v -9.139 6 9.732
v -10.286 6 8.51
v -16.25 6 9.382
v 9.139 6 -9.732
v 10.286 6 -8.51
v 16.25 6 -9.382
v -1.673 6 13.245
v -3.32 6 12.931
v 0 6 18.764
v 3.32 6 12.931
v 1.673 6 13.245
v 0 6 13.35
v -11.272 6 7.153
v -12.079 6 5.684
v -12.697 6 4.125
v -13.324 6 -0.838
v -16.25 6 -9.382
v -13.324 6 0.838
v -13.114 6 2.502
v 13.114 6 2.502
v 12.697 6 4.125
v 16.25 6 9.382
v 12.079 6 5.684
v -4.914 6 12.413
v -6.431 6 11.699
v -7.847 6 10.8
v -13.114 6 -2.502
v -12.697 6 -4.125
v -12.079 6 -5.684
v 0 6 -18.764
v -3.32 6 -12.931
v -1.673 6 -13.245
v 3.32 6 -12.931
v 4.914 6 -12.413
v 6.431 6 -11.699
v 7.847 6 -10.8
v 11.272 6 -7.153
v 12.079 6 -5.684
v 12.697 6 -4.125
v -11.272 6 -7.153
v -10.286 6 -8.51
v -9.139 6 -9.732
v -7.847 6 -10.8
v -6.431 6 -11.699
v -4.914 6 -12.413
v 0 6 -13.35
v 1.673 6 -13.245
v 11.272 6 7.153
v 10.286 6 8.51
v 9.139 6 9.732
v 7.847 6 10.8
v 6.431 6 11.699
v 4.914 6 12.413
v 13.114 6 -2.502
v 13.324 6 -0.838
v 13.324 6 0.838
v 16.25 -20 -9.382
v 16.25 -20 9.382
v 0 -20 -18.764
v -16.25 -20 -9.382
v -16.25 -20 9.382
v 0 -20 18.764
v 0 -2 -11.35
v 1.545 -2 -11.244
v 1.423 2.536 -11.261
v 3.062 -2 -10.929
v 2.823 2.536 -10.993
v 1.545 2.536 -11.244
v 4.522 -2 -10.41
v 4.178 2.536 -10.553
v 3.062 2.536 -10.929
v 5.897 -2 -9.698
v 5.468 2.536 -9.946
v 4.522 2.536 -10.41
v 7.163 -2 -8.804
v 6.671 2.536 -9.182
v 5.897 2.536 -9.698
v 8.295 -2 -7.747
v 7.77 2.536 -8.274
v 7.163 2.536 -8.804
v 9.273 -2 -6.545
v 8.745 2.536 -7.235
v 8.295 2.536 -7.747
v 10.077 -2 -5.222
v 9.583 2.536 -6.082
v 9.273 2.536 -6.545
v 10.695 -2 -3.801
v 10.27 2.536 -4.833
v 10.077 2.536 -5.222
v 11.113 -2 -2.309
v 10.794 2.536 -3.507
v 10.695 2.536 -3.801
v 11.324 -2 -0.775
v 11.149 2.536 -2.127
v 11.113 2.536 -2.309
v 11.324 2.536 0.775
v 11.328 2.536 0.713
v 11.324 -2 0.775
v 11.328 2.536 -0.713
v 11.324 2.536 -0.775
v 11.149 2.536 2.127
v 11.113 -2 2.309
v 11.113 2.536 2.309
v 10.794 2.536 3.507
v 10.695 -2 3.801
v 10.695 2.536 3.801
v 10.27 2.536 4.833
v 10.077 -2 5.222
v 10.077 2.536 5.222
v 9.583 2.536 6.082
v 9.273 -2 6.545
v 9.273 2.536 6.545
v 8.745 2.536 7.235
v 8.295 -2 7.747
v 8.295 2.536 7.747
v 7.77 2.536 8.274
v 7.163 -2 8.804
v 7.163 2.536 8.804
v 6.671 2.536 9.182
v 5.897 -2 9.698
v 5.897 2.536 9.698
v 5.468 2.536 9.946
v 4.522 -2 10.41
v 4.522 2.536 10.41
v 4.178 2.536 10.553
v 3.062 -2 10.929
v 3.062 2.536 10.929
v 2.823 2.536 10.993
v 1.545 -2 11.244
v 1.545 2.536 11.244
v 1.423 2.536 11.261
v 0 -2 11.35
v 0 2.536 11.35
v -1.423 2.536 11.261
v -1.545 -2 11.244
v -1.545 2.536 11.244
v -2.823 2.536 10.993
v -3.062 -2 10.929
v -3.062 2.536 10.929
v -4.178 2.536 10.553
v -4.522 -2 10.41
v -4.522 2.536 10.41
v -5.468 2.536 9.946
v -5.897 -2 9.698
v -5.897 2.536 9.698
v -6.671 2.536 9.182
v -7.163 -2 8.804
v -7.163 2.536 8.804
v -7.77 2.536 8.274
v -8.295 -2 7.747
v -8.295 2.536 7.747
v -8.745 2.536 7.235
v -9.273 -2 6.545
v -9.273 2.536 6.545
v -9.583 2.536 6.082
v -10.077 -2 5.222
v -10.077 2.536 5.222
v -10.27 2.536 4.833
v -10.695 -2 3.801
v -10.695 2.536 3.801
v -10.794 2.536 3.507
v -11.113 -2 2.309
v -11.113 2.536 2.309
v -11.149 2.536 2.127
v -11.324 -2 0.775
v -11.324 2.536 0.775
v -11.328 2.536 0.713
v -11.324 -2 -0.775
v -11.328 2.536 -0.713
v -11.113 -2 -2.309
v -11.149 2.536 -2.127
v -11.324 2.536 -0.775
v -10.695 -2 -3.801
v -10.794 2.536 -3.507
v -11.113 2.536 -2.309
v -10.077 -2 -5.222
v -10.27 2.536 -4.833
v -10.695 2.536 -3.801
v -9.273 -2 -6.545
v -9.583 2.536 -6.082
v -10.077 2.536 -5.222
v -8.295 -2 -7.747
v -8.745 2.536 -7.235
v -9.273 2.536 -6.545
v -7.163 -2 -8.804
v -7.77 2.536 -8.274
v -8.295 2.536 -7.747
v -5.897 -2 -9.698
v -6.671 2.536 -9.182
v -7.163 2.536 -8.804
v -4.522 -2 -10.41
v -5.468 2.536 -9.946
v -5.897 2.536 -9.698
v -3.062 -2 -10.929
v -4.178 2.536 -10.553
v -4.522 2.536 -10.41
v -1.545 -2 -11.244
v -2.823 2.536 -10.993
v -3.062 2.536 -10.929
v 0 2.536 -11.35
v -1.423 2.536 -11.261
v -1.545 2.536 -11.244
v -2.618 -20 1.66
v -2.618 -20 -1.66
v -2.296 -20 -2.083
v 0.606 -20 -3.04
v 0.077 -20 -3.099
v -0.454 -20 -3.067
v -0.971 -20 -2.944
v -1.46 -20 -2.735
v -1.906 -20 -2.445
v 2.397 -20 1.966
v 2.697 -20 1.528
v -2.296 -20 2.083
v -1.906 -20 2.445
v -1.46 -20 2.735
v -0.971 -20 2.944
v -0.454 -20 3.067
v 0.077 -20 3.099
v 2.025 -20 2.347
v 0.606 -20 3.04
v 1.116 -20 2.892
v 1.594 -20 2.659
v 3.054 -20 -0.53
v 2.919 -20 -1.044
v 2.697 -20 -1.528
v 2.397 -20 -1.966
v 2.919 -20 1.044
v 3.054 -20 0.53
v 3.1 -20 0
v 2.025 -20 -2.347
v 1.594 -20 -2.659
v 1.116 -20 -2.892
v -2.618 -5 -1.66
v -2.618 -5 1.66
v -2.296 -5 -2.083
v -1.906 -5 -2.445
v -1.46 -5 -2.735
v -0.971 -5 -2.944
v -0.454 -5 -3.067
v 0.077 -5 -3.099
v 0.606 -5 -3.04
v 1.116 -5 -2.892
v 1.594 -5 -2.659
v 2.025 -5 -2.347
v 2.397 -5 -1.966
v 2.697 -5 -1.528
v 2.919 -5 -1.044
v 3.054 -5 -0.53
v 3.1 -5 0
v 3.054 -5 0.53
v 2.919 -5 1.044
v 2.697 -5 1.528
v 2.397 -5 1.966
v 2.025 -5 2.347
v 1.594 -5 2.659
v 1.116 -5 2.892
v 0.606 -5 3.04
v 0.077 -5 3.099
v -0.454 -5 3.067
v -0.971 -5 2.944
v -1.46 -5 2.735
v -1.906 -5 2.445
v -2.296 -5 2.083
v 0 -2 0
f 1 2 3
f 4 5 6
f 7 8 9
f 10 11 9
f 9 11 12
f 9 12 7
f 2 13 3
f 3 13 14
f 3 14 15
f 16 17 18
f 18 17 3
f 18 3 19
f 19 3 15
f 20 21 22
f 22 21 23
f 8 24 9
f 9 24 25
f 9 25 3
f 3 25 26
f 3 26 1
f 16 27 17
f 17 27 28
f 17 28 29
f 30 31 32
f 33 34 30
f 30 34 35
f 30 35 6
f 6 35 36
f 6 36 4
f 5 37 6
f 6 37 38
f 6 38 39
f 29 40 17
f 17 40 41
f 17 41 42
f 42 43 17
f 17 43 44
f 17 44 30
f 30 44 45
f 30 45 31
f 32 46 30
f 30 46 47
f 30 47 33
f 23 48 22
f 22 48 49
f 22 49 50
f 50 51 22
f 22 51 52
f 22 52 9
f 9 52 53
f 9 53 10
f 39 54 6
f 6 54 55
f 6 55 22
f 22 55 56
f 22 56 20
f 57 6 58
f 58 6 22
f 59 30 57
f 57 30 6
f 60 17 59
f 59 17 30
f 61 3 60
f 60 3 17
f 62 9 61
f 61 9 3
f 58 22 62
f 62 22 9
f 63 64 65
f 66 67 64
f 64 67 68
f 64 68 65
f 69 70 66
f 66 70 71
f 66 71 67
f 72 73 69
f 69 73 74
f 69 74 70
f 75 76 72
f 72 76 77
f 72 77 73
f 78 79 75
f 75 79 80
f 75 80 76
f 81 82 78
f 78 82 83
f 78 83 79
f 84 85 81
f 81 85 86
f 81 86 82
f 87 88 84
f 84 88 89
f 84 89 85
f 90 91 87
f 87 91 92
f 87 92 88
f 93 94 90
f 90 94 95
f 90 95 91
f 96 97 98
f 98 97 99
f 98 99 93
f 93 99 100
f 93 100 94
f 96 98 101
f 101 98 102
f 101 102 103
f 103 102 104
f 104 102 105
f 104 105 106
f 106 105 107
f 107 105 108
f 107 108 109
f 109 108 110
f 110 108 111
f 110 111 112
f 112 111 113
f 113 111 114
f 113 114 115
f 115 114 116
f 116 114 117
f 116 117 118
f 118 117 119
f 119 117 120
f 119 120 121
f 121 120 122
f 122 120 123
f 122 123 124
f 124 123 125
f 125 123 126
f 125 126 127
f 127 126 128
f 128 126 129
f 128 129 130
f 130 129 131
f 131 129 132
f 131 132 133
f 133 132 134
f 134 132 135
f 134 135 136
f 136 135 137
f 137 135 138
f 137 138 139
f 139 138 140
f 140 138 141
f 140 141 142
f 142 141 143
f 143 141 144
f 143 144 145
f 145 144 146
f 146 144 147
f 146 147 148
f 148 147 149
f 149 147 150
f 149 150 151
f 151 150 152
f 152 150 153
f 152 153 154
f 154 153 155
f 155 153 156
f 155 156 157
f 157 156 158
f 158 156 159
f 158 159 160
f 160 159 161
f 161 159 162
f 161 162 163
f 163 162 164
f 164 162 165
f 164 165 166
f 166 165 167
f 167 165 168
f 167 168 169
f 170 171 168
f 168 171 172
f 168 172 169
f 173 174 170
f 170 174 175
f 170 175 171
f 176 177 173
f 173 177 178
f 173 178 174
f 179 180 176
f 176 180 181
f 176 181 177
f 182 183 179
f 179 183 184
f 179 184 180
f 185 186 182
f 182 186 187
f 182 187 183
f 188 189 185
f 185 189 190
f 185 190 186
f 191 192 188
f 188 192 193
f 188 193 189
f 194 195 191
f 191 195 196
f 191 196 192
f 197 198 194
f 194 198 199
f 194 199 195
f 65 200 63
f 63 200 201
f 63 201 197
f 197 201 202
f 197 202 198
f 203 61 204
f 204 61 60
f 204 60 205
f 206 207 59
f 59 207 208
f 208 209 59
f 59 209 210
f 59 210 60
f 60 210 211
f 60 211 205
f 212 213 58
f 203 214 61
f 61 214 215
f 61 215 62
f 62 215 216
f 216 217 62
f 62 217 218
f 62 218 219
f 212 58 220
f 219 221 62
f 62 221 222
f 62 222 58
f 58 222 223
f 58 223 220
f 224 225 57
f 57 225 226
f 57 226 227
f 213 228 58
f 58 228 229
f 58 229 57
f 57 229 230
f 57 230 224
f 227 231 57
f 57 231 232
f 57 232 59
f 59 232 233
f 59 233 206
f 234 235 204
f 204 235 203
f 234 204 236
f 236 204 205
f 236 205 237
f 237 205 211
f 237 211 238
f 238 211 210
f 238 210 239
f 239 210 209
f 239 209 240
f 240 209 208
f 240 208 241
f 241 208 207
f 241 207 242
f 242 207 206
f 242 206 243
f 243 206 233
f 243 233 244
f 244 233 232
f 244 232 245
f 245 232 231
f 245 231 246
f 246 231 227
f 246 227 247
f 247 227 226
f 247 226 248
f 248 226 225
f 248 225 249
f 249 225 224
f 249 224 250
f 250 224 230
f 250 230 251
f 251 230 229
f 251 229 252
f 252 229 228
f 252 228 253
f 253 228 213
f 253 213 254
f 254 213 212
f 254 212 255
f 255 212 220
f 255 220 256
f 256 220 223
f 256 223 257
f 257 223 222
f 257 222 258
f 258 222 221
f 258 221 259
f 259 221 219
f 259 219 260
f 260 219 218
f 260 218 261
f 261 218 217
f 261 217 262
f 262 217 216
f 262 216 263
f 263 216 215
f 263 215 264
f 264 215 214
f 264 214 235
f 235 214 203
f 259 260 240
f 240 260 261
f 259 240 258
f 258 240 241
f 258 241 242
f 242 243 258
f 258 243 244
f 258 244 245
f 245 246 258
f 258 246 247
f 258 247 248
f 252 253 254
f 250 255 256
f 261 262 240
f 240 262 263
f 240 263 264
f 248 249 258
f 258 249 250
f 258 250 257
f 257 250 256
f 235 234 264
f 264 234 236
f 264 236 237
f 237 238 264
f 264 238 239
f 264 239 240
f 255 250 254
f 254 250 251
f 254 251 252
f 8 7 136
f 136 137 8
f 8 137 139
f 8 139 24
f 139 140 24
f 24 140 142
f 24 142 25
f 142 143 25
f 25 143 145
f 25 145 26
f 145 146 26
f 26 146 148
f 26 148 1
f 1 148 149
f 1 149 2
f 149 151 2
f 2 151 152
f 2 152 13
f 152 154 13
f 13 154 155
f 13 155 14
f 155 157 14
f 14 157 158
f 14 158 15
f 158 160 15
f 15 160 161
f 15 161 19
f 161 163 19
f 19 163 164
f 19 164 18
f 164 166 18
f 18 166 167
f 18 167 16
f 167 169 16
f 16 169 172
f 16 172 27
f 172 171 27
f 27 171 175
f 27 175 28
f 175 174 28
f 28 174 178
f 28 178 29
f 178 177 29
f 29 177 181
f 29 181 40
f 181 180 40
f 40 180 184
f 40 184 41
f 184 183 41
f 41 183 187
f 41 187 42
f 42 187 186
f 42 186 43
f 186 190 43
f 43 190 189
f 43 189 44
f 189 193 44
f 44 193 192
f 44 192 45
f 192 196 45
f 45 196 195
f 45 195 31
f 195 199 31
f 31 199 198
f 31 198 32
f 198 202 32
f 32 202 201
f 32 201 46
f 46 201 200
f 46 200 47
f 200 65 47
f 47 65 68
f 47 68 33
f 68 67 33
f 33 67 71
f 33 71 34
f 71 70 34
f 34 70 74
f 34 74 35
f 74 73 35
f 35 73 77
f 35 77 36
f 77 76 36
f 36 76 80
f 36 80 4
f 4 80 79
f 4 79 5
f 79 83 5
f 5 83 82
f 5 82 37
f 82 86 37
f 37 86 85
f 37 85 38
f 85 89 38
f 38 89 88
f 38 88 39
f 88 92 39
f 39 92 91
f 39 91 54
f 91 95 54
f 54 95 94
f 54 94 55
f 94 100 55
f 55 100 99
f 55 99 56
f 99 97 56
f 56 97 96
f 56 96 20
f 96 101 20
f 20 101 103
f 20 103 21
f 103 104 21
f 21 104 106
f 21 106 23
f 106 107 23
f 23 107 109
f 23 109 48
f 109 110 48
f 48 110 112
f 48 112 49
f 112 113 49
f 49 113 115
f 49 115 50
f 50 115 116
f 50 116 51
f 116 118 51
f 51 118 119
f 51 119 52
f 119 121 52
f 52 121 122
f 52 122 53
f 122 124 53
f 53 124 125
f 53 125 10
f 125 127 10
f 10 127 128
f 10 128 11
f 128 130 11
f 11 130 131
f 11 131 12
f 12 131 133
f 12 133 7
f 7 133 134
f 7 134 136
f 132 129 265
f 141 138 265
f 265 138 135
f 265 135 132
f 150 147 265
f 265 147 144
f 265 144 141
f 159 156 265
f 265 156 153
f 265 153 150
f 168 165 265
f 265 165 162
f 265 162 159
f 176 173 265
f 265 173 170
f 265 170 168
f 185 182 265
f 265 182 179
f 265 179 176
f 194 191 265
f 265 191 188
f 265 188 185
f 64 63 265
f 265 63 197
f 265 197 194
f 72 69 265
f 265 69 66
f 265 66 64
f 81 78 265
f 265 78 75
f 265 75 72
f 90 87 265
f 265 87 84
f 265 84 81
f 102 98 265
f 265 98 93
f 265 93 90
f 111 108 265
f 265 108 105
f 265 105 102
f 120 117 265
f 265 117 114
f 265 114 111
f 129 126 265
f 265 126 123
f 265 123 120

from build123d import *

# Parameters (mm, degrees)
SKETCH1_R           = 11.35
BOSS_EXTRUDE1_DEPTH = 6
BOSS_EXTRUDE4_DEPTH = 20
CUT_EXTRUDE2_DEPTH  = 15
CHAMFER3_SIZE       = 2
CHAMFER3_SIZE2      = 3.464101615
CUT_EXTRUDE4_START  = -2
SKETCH9_R           = 11.35
CUT_EXTRUDE4_DEPTH  = 2


with BuildPart() as part:
    # Sketch1 → Boss-Extrude1 (new body)
    with BuildSketch(Plane(origin=(0, 0, 0), x_dir=(1, 0, 0), z_dir=(0, 1, 0))):
        Polygon((16.25, 9.381941874), (0, 18.763883749), (-16.25, 9.381941874), (-16.25, -9.381941874), (0, -18.763883749), (16.25, -9.381941874), align=None)
        Circle(SKETCH1_R, mode=Mode.SUBTRACT)
    extrude(amount=BOSS_EXTRUDE1_DEPTH)

    # Sketch5 → Boss-Extrude4 (add)
    with BuildSketch(Plane.XZ):
        Polygon((16.25, 9.381941874), (0, 18.763883749), (-16.25, 9.381941874), (-16.25, -9.381941874), (0, -18.763883749), (16.25, -9.381941874), align=None)
    extrude(amount=BOSS_EXTRUDE4_DEPTH)

    # Sketch6 → Cut-Extrude2 (cut)
    with BuildSketch(Plane.XZ.offset(20)):
        with BuildLine():
            ThreePointArc((-2.618090908, -1.66), (3.1, 0), (-2.618090908, 1.66))
            Line((-2.618090908, 1.66), (-2.618090908, -1.66))
        make_face()
    extrude(amount=-CUT_EXTRUDE2_DEPTH, mode=Mode.SUBTRACT)

    # Chamfer3
    chamfer3_edges = [part.edges().sort_by_distance(p)[0] for p in [
        (-11.35, 6, 0),
    ]]
    chamfer3_side = [part.faces().sort_by_distance(p)[0] for p in [
        (7.87677715, 6, -13.642978223),
    ]]
    chamfer(chamfer3_edges, length=CHAMFER3_SIZE, length2=CHAMFER3_SIZE2, reference=chamfer3_side[0])

    # Sketch9 → Cut-Extrude4 (cut)
    with BuildSketch(Plane(origin=(0, 0, 0), x_dir=(1, 0, 0), z_dir=(0, 1, 0)).offset(CUT_EXTRUDE4_START)):
        Circle(SKETCH9_R)
    extrude(amount=CUT_EXTRUDE4_DEPTH, mode=Mode.SUBTRACT)


solid = part.part
